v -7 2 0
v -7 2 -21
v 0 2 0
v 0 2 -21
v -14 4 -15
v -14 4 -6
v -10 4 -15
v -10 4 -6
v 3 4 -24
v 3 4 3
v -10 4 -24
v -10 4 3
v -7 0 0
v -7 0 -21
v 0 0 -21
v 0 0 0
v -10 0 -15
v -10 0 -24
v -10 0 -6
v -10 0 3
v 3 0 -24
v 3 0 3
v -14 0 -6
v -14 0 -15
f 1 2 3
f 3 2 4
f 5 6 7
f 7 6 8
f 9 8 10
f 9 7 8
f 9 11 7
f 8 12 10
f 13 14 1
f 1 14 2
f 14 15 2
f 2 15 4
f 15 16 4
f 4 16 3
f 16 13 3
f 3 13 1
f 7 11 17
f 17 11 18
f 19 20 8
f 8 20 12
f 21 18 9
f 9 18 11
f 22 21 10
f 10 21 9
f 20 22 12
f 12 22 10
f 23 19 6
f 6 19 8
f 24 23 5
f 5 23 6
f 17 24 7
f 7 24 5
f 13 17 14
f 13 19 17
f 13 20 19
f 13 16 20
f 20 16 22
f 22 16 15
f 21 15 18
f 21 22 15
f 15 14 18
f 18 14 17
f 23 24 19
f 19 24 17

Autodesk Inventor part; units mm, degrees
ref_plane "YZ Plane" through (0, 0, 0) normal (1, 0, 0) x (0, 1, 0)
ref_plane "XZ Plane" through (0, 0, 0) normal (0, 1, 0) x (-1, 0, 0)
ref_plane "XY Plane" through (0, 0, 0) normal (0, 0, 1) x (1, 0, 0)
sketch "Sketch3" plane through (0, 0, 0) normal (0, 1, 0) x (-1, 0, 0)
  line L0 (0, 0) -> (7, 0)
  line L1 (7, 0) -> (7, -21)
  line L2 (7, -21) -> (0, -21)
  line L3 (0, -21) -> (0, 0)
  line L4 (10, -24) -> (10, 3)
  line L5 (10, 3) -> (-3, 3)
  line L6 (-3, 3) -> (-3, -24)
  line L7 (-3, -24) -> (10, -24)
  line L8 (10, -10.5) -> (10, -6)
  line L9 (10, -6) -> (14, -6)
  line L10 (14, -6) -> (14, -15)
  line L11 (14, -15) -> (10, -15)
  dimension "d13" = 7
  dimension "d14" = 21
  dimension "d15" = 3
  dimension "d16" = 4.5
  dimension "d17" = 4
  dimension "d18" = 9
extrude "Extrusion3" add sketch "Sketch3" along normal blind 2
sketch "Sketch4" plane through (0, 2, 0) normal (0, 1, 0) x (1, 0, 0)
  line L0 (-7, 0) -> (-7, 21) projected
  line L1 (-7, 21) -> (0, 21) projected
  line L2 (0, 21) -> (0, 0) projected
  line L3 (0, 0) -> (-7, 0) projected
  line L4 (-10, 15) -> (-14, 15) projected
  line L5 (-14, 15) -> (-14, 6) projected
  line L6 (-14, 6) -> (-10, 6) projected
  line L7 (-10, 6) -> (-10, -3) projected
  line L8 (-10, -3) -> (3, -3) projected
  line L9 (3, -3) -> (3, 24) projected
  line L10 (3, 24) -> (-10, 24) projected
  line L11 (-10, 24) -> (-10, 15) projected
extrude "Extrusion4" add sketch "Sketch4" along normal blind 2 contours L0 L1 L2 L3 | L11 L10 L9 L8 L7 L6 L5 L4
equation "\"BendRadius\" = Thickness"
equation "\"BendReliefWidth\" = Thickness"
equation "\"BendReliefDepth\" = 0.5 * Thickness"
equation "\"CornerReliefSize\" = 4 * Thickness"
equation "\"MinimumRemnant\" = 2 * Thickness"
equation "\"TransitionRadius\" = BendRadius"
equation "\"JacobiRadiusSize\" = BendRadius"
equation "\"GapSize\" = Thickness"
equation "\"Thickness\" = 0.5"
properties part number "basebaquela"
